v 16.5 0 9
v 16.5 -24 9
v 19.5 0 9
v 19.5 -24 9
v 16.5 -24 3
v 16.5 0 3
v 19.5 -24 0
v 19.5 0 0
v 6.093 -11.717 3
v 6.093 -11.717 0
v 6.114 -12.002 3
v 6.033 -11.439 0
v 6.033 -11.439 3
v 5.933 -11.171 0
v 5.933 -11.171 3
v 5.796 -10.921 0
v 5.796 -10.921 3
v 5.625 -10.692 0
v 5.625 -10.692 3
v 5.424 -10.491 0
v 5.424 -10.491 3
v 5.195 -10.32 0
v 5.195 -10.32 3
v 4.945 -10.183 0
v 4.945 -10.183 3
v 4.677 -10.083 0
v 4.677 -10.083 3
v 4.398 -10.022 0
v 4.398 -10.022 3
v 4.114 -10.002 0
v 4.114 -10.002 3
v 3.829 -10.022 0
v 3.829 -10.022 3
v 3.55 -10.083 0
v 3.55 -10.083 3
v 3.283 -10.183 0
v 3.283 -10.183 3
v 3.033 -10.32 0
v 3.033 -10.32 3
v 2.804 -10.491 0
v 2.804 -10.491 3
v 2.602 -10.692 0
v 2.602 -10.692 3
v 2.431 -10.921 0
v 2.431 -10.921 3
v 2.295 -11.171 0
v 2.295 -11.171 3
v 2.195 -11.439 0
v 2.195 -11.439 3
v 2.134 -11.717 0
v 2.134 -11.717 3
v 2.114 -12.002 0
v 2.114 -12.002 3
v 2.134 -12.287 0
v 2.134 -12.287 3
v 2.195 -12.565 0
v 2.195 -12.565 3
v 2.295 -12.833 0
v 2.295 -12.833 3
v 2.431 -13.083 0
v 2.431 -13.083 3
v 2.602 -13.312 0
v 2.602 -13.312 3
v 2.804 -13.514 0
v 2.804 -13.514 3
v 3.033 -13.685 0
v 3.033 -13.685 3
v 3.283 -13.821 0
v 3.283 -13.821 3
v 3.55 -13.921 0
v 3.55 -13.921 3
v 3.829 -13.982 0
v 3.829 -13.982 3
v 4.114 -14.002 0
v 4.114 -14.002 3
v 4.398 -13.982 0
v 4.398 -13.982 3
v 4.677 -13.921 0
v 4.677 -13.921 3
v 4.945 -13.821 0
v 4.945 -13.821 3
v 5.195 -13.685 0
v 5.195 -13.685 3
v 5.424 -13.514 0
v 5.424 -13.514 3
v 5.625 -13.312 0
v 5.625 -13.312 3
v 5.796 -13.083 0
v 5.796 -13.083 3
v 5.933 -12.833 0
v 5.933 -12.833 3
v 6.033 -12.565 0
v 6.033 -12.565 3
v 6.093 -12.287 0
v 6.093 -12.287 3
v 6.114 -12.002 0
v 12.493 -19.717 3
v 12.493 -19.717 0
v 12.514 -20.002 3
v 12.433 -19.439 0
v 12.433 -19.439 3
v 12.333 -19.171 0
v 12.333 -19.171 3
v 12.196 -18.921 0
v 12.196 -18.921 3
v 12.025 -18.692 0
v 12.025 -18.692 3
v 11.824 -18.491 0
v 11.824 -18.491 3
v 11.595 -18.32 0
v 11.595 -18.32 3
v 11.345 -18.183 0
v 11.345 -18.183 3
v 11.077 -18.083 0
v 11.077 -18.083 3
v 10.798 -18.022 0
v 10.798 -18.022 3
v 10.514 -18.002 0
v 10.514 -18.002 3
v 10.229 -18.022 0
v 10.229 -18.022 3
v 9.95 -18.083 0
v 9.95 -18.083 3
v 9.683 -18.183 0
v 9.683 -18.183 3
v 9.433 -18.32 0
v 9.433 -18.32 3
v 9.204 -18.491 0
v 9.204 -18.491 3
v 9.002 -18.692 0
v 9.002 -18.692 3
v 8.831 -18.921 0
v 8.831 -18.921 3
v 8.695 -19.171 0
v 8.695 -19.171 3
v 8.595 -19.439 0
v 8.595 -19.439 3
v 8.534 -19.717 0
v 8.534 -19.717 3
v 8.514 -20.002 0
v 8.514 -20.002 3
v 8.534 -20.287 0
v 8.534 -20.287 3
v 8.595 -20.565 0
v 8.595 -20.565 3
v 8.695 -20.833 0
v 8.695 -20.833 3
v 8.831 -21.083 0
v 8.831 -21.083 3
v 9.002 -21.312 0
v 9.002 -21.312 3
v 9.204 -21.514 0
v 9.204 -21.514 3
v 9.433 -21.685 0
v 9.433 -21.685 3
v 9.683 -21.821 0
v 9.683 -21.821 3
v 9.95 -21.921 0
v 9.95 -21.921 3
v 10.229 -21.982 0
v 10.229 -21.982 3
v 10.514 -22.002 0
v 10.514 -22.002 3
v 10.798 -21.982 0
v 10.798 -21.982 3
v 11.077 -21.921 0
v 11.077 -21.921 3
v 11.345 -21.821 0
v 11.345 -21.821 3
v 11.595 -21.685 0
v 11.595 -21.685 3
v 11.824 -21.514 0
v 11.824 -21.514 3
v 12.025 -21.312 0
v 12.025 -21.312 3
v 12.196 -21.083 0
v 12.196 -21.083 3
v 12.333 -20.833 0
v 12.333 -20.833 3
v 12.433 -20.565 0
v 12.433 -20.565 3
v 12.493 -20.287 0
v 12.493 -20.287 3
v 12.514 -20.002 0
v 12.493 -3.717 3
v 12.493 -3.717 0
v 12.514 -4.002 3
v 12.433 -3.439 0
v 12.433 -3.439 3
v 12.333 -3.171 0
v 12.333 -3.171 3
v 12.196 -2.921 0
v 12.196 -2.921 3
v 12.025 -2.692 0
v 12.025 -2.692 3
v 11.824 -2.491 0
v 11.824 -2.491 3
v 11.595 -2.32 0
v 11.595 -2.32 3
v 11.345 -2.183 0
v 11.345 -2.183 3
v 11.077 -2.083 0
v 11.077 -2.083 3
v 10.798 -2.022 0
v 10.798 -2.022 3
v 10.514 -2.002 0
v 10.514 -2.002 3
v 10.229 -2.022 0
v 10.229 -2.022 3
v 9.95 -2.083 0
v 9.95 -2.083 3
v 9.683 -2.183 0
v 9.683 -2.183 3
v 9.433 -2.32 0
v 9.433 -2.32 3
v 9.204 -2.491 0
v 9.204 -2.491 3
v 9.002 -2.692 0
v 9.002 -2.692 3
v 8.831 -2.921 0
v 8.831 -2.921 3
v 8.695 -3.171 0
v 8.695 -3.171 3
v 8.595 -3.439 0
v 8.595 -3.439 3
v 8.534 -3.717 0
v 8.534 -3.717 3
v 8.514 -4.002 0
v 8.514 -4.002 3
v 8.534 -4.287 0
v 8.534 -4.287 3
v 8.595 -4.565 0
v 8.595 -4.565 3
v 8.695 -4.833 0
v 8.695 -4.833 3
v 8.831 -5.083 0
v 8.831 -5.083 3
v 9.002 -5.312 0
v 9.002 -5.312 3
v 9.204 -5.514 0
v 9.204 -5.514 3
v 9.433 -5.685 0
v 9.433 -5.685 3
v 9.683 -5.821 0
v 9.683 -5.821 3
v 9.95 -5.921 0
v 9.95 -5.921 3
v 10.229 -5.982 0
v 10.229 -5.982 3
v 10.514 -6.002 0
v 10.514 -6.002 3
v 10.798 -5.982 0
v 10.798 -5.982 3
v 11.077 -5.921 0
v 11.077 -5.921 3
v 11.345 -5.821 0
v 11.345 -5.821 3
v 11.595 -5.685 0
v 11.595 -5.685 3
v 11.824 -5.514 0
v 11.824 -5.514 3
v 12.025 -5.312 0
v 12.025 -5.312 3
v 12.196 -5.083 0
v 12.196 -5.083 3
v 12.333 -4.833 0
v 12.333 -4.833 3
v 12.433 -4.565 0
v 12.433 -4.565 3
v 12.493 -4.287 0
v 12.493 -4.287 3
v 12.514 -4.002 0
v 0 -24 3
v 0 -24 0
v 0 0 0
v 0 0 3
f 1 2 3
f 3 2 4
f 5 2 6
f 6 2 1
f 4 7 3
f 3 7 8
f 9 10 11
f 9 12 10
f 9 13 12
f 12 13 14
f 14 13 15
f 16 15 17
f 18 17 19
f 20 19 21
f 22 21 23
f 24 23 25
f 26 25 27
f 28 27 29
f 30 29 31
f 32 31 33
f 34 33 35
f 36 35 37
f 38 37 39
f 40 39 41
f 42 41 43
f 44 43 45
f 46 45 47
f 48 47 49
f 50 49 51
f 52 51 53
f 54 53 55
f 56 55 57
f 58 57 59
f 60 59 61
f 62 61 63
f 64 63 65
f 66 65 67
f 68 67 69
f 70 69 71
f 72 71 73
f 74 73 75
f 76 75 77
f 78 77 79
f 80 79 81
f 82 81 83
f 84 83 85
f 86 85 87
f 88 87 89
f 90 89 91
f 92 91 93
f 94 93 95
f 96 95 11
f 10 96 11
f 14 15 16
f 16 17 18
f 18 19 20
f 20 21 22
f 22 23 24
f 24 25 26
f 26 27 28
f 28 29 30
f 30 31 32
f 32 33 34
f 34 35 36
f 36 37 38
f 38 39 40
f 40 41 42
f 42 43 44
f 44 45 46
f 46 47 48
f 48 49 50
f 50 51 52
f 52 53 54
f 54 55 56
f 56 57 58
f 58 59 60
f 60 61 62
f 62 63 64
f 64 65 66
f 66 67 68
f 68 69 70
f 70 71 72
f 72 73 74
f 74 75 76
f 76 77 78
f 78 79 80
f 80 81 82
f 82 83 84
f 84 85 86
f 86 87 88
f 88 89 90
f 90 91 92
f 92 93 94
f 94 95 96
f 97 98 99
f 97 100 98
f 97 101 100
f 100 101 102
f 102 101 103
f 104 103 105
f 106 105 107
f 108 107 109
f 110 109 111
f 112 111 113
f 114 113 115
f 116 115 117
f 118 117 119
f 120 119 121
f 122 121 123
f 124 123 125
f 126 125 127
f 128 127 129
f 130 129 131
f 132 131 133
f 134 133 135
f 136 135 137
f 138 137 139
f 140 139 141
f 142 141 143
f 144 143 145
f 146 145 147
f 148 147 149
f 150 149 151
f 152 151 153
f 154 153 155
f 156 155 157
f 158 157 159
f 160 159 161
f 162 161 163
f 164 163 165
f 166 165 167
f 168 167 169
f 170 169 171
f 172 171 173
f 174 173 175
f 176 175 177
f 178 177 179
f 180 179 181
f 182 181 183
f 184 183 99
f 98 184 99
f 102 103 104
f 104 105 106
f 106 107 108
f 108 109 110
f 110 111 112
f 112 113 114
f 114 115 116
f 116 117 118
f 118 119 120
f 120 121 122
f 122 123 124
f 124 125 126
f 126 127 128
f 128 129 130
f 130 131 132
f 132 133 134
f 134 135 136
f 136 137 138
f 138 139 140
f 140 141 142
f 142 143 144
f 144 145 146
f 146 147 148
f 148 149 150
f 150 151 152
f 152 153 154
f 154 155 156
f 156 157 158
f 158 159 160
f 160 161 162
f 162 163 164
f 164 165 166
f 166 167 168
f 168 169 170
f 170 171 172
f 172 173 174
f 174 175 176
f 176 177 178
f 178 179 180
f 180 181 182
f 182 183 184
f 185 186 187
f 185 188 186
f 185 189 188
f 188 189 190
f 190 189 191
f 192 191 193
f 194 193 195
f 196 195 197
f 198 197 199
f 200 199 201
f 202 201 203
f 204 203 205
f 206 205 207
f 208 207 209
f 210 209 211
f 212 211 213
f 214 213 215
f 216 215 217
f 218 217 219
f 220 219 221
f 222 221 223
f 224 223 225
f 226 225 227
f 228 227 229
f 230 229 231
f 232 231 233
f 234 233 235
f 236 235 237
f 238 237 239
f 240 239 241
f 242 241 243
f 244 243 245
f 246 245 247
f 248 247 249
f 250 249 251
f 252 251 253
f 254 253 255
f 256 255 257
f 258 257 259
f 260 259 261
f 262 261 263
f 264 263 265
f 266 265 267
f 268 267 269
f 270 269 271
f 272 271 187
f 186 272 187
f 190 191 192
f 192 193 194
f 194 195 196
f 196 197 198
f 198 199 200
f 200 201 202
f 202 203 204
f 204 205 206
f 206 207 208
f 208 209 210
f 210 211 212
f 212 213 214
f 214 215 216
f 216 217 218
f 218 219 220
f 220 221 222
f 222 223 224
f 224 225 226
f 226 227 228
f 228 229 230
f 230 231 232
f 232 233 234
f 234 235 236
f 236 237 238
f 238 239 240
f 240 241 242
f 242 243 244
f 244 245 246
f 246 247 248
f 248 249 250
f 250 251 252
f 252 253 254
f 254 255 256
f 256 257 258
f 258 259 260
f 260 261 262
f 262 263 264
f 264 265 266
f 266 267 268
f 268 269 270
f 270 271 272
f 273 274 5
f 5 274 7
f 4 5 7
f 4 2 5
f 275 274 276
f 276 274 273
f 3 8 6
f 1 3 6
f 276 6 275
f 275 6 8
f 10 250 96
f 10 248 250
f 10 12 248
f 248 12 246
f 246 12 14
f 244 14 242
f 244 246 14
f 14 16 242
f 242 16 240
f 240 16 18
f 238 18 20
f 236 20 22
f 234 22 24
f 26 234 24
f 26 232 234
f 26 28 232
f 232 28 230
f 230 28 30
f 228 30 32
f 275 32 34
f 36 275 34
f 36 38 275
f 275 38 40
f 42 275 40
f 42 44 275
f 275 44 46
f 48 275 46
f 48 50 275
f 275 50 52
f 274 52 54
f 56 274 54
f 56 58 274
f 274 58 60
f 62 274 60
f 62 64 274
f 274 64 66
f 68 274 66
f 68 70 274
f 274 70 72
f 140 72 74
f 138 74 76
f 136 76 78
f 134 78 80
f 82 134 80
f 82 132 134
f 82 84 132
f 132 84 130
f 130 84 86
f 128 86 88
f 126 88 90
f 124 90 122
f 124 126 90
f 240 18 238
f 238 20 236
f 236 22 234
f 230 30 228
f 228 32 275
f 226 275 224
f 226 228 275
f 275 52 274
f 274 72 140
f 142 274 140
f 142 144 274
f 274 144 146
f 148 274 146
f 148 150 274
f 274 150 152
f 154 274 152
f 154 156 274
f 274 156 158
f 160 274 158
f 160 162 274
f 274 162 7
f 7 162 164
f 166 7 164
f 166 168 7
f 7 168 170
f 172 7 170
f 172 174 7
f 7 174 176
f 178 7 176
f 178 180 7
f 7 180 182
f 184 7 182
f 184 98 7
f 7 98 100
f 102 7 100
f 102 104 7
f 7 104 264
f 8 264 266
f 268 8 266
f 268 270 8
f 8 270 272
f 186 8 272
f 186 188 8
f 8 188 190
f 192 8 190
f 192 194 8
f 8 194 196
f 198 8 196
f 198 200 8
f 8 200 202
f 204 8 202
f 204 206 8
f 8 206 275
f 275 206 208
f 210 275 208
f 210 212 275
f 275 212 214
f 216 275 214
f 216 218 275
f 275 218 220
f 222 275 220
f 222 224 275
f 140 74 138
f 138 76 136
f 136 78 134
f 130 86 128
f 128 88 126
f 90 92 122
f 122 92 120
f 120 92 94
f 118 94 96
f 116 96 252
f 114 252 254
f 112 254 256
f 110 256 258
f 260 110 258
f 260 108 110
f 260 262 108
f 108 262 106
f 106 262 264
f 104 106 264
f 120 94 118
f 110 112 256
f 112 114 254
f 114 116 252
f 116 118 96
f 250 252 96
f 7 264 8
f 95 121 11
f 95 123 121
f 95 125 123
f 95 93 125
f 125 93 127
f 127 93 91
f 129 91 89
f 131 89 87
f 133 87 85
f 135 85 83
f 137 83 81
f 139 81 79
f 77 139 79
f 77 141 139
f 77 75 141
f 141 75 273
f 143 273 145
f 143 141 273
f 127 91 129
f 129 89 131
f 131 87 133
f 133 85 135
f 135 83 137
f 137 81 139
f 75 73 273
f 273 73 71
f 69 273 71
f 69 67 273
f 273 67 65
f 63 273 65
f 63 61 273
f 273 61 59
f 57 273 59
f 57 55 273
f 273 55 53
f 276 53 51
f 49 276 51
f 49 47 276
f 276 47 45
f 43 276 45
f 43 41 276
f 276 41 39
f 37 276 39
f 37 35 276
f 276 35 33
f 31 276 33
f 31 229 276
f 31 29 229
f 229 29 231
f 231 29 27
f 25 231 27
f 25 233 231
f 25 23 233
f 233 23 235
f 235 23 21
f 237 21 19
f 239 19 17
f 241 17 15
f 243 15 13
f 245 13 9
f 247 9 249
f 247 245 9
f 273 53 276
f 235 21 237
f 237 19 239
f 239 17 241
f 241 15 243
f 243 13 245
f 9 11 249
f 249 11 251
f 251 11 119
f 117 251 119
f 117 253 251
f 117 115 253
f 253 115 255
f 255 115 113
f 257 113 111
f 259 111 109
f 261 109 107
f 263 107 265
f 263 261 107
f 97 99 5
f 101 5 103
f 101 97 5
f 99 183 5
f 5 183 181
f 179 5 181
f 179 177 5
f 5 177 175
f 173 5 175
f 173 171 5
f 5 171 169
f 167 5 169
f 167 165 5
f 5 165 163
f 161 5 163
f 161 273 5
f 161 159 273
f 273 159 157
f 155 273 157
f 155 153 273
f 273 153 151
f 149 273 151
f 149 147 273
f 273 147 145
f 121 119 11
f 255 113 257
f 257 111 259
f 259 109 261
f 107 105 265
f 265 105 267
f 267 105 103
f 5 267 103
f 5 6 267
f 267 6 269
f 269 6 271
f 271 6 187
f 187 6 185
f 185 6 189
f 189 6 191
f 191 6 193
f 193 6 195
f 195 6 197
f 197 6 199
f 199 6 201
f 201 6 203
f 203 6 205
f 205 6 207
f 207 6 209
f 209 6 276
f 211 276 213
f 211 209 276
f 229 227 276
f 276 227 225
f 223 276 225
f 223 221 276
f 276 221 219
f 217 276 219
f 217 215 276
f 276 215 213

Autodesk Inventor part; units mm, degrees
ref_plane "YZ Plane" through (0, 0, 0) normal (1, 0, 0) x (0, 1, 0)
ref_plane "XZ Plane" through (0, 0, 0) normal (0, 1, 0) x (-1, 0, 0)
ref_plane "XY Plane" through (0, 0, 0) normal (0, 0, 1) x (1, 0, 0)
sketch "Sketch1" plane through (0, 0, 0) normal (0, 0, 1) x (1, 0, 0)
  line L0 (0, 0) -> (16.5, 0)
  line L1 (16.5, 0) -> (16.5, -24)
  line L2 (16.5, -24) -> (0, -24)
  line L3 (0, -24) -> (0, 0)
  line L4 (24.2611, -12.002) -> (-7.0214, -12.002)
  line L5 (10.5138, 0) -> (10.5138, -25.2396)
  line L6 (10.5138, -12.002) -> (10.5138, -20.002) construction
  line L7 (10.5138, -12.002) -> (10.5138, -4.002) construction
  circle A0 centre (10.5138, -4.002) radius 2
  circle A1 centre (10.5138, -20.002) radius 2
  circle A2 centre (4.1138, -12.002) radius 2
  dimension "d0" = 16.5
  dimension "d1" = 24
  dimension "d2" = 8
  dimension "d3" = 8
  dimension "d4" = 4
  dimension "d5" = 4
  dimension "d7" = 4
extrude "Extrusion1" add sketch "Sketch1" along normal blind 3 contours L0 L5 A0 L4 A2 L3 | L0 L1 L4 L5 A0 | L4 A2 L5 A1 L2 L3 | L1 L2 L5 A1 L4
sketch "Sketch3" plane through (16.5, -24, 0) normal (1, 0, 0) x (0, 0, -1)
  line L0 (0, 0) -> (-9, 0)
  line L1 (-9, 0) -> (-9, 24)
  line L2 (-9, 24) -> (0, 24)
  line L3 (0, 24) -> (0, 0)
  dimension "d17" = 9
extrude "Extrusion3" add sketch "Sketch3" along normal blind 3
properties part number "bart y clips"
